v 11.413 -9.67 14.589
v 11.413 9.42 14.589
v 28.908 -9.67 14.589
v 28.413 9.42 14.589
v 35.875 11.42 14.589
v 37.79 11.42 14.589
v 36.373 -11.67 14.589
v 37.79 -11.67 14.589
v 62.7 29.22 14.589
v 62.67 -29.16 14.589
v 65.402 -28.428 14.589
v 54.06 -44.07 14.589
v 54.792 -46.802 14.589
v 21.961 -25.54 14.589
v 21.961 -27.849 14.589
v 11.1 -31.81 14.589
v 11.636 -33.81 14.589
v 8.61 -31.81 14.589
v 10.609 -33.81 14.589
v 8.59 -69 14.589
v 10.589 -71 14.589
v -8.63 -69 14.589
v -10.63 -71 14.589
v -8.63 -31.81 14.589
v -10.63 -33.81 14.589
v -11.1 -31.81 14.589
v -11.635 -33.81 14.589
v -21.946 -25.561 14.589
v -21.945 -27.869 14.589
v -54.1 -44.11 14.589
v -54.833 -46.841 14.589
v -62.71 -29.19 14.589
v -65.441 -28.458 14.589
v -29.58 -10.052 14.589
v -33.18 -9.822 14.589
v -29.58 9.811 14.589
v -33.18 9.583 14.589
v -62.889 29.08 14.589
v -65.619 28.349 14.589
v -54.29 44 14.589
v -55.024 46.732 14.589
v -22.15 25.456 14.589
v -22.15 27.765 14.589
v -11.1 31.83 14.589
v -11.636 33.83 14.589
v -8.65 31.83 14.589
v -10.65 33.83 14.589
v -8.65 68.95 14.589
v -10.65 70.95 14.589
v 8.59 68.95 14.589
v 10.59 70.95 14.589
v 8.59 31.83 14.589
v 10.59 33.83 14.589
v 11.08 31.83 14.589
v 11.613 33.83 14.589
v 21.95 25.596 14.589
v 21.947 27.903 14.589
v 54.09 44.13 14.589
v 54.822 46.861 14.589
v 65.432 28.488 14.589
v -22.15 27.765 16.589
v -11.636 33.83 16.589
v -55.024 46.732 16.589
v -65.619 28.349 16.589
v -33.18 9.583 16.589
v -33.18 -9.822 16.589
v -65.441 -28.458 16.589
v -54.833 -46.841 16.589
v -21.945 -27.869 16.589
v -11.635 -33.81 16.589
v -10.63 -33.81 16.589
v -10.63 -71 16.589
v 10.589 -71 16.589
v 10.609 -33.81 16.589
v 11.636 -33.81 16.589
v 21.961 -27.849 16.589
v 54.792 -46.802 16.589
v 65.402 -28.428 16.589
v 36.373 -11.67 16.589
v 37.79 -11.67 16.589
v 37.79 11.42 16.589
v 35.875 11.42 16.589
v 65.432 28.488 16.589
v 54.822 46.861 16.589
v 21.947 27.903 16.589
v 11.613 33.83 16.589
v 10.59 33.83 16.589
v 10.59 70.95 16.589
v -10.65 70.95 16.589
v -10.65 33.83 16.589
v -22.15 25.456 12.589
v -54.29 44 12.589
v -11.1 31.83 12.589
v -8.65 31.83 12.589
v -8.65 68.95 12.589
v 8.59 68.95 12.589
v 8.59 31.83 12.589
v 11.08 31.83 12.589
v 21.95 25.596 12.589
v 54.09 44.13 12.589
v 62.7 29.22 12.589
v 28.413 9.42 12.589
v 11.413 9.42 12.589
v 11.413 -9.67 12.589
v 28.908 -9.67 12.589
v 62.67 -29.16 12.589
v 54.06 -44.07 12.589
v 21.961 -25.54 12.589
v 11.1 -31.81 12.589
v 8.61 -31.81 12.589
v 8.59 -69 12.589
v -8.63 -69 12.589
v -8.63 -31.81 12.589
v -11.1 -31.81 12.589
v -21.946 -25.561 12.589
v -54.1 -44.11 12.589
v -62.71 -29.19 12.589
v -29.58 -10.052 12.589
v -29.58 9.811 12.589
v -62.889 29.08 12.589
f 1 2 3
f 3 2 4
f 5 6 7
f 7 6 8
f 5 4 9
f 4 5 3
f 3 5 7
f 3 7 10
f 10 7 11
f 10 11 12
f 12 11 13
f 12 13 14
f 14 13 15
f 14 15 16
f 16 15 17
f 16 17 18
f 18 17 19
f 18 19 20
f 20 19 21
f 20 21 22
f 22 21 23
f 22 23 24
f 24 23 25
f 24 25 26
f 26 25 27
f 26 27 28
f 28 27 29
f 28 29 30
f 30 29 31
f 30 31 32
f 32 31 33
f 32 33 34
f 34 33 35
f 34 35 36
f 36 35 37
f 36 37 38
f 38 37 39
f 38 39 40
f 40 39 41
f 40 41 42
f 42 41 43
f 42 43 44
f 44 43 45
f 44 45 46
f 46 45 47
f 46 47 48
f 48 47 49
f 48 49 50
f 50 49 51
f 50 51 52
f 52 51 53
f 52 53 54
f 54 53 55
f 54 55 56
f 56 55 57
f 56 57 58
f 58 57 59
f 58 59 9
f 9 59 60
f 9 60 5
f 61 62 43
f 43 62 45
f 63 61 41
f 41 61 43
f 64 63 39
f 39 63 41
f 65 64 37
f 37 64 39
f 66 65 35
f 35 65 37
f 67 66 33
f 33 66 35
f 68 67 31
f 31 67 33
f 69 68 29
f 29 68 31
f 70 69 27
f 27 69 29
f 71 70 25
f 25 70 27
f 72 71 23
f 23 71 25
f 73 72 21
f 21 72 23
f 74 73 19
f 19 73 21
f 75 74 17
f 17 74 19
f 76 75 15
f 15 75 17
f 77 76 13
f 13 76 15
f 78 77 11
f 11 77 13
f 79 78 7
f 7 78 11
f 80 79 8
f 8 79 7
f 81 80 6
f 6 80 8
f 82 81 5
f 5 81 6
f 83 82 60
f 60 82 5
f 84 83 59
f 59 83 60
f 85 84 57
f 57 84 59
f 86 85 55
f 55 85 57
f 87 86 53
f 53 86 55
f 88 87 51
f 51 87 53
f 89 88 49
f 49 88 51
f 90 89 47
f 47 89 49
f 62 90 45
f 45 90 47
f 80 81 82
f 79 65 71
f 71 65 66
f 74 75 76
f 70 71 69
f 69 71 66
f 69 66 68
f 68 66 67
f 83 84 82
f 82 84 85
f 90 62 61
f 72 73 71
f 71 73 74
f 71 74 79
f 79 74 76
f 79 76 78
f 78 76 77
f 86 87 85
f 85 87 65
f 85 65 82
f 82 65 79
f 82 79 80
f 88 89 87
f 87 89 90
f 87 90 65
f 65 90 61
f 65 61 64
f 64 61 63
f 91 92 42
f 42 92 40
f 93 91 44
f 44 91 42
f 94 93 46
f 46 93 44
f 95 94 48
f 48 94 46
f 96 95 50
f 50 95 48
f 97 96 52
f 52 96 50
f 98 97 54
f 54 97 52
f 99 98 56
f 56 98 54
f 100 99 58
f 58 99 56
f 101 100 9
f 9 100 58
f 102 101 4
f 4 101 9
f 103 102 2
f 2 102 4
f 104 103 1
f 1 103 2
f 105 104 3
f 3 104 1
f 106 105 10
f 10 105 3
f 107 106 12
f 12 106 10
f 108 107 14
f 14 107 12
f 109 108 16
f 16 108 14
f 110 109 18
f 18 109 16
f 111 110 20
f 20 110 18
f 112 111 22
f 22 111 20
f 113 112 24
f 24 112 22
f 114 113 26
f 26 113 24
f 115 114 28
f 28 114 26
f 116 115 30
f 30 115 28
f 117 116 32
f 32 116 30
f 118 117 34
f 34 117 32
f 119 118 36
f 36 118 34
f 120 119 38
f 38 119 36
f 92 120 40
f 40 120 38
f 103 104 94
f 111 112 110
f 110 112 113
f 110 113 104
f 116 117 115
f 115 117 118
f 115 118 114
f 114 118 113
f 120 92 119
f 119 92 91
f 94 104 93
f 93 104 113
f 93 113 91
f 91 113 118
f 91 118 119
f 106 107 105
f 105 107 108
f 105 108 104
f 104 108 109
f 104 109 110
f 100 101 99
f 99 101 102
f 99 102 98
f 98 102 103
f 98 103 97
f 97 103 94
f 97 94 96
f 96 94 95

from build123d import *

# Parameters (mm, degrees)
AUFSATZ_LINEAR_AUSTRAGEN1_DEPTH = 2
AUFSATZ_LINEAR_AUSTRAGEN2_DEPTH = 2


with BuildPart() as part:
    # Skizze1 → Aufsatz-Linear austragen1 (new body)
    with BuildSketch(Plane.XY.offset(14.58852)):
        Polygon((-22.149859894, 27.765281808), (-55.023633975, 46.732102334), (-65.619428736, 28.349034811), (-33.1799992, 9.582671858), (-33.1799992, -9.82193495), (-65.441180026, -28.458395245), (-54.832668225, -46.841377939), (-21.94526311, -27.869445957), (-11.635211495, -33.81000048), (-10.63000112, -33.81000048), (-10.63000112, -70.99999976), (10.588764643, -70.99999976), (10.608764603, -33.81000048), (11.636228403, -33.81000048), (21.961456264, -27.849347945), (54.791716349, -46.801638497), (65.402118422, -28.428154068), (36.372671479, -11.66999904), (37.79000014, -11.66999904), (37.79000014, 11.41999954), (35.875483821, 11.41999954), (65.431940836, 28.488460753), (54.822266278, 46.860690996), (21.946878227, 27.90320319), (11.612735063, 33.83000044), (10.5900012, 33.83000044), (10.5900012, 70.94999986), (-10.65000108, 70.94999986), (-10.65000108, 33.83000044), (-11.635793215, 33.83000044), align=None)
    extrude(amount=AUFSATZ_LINEAR_AUSTRAGEN1_DEPTH)

    # Skizze2 → Aufsatz-Linear austragen2 (add)
    with BuildSketch(Plane(origin=(0, 0, 14.58852), x_dir=(-1, 0, 0), z_dir=(0, 0, -1))):
        Polygon((29.5799992, 9.810611271), (29.5799992, -10.052032223), (62.709719012, -29.19022531), (54.099914325, -44.109744044), (21.94585632, -25.560861902), (11.100245691, -31.81000048), (8.63000112, -31.81000048), (8.63000112, -68.99999976), (-8.58983991, -68.99999976), (-8.60983987, -31.81000048), (-11.100378331, -31.81000048), (-21.96144846, -25.540011472), (-54.059788028, -44.0697781), (-62.669841481, -29.160193905), (-28.907796867, -9.66999904), (-11.412909471, -9.66999904), (-11.412909471, 9.41999954), (-28.412909471, 9.41999954), (-62.699818266, 29.220233802), (-54.089861915, 44.129654408), (-21.949592186, 25.596070242), (-11.079922713, 31.83000044), (-8.5900012, 31.83000044), (-8.5900012, 68.94999986), (8.65000108, 68.94999986), (8.65000108, 31.83000044), (11.100321567, 31.83000044), (22.149980751, 25.45634161), (54.290039962, 43.999838722), (62.88949027, 29.080308923), align=None)
    extrude(amount=AUFSATZ_LINEAR_AUSTRAGEN2_DEPTH)


solid = part.part
